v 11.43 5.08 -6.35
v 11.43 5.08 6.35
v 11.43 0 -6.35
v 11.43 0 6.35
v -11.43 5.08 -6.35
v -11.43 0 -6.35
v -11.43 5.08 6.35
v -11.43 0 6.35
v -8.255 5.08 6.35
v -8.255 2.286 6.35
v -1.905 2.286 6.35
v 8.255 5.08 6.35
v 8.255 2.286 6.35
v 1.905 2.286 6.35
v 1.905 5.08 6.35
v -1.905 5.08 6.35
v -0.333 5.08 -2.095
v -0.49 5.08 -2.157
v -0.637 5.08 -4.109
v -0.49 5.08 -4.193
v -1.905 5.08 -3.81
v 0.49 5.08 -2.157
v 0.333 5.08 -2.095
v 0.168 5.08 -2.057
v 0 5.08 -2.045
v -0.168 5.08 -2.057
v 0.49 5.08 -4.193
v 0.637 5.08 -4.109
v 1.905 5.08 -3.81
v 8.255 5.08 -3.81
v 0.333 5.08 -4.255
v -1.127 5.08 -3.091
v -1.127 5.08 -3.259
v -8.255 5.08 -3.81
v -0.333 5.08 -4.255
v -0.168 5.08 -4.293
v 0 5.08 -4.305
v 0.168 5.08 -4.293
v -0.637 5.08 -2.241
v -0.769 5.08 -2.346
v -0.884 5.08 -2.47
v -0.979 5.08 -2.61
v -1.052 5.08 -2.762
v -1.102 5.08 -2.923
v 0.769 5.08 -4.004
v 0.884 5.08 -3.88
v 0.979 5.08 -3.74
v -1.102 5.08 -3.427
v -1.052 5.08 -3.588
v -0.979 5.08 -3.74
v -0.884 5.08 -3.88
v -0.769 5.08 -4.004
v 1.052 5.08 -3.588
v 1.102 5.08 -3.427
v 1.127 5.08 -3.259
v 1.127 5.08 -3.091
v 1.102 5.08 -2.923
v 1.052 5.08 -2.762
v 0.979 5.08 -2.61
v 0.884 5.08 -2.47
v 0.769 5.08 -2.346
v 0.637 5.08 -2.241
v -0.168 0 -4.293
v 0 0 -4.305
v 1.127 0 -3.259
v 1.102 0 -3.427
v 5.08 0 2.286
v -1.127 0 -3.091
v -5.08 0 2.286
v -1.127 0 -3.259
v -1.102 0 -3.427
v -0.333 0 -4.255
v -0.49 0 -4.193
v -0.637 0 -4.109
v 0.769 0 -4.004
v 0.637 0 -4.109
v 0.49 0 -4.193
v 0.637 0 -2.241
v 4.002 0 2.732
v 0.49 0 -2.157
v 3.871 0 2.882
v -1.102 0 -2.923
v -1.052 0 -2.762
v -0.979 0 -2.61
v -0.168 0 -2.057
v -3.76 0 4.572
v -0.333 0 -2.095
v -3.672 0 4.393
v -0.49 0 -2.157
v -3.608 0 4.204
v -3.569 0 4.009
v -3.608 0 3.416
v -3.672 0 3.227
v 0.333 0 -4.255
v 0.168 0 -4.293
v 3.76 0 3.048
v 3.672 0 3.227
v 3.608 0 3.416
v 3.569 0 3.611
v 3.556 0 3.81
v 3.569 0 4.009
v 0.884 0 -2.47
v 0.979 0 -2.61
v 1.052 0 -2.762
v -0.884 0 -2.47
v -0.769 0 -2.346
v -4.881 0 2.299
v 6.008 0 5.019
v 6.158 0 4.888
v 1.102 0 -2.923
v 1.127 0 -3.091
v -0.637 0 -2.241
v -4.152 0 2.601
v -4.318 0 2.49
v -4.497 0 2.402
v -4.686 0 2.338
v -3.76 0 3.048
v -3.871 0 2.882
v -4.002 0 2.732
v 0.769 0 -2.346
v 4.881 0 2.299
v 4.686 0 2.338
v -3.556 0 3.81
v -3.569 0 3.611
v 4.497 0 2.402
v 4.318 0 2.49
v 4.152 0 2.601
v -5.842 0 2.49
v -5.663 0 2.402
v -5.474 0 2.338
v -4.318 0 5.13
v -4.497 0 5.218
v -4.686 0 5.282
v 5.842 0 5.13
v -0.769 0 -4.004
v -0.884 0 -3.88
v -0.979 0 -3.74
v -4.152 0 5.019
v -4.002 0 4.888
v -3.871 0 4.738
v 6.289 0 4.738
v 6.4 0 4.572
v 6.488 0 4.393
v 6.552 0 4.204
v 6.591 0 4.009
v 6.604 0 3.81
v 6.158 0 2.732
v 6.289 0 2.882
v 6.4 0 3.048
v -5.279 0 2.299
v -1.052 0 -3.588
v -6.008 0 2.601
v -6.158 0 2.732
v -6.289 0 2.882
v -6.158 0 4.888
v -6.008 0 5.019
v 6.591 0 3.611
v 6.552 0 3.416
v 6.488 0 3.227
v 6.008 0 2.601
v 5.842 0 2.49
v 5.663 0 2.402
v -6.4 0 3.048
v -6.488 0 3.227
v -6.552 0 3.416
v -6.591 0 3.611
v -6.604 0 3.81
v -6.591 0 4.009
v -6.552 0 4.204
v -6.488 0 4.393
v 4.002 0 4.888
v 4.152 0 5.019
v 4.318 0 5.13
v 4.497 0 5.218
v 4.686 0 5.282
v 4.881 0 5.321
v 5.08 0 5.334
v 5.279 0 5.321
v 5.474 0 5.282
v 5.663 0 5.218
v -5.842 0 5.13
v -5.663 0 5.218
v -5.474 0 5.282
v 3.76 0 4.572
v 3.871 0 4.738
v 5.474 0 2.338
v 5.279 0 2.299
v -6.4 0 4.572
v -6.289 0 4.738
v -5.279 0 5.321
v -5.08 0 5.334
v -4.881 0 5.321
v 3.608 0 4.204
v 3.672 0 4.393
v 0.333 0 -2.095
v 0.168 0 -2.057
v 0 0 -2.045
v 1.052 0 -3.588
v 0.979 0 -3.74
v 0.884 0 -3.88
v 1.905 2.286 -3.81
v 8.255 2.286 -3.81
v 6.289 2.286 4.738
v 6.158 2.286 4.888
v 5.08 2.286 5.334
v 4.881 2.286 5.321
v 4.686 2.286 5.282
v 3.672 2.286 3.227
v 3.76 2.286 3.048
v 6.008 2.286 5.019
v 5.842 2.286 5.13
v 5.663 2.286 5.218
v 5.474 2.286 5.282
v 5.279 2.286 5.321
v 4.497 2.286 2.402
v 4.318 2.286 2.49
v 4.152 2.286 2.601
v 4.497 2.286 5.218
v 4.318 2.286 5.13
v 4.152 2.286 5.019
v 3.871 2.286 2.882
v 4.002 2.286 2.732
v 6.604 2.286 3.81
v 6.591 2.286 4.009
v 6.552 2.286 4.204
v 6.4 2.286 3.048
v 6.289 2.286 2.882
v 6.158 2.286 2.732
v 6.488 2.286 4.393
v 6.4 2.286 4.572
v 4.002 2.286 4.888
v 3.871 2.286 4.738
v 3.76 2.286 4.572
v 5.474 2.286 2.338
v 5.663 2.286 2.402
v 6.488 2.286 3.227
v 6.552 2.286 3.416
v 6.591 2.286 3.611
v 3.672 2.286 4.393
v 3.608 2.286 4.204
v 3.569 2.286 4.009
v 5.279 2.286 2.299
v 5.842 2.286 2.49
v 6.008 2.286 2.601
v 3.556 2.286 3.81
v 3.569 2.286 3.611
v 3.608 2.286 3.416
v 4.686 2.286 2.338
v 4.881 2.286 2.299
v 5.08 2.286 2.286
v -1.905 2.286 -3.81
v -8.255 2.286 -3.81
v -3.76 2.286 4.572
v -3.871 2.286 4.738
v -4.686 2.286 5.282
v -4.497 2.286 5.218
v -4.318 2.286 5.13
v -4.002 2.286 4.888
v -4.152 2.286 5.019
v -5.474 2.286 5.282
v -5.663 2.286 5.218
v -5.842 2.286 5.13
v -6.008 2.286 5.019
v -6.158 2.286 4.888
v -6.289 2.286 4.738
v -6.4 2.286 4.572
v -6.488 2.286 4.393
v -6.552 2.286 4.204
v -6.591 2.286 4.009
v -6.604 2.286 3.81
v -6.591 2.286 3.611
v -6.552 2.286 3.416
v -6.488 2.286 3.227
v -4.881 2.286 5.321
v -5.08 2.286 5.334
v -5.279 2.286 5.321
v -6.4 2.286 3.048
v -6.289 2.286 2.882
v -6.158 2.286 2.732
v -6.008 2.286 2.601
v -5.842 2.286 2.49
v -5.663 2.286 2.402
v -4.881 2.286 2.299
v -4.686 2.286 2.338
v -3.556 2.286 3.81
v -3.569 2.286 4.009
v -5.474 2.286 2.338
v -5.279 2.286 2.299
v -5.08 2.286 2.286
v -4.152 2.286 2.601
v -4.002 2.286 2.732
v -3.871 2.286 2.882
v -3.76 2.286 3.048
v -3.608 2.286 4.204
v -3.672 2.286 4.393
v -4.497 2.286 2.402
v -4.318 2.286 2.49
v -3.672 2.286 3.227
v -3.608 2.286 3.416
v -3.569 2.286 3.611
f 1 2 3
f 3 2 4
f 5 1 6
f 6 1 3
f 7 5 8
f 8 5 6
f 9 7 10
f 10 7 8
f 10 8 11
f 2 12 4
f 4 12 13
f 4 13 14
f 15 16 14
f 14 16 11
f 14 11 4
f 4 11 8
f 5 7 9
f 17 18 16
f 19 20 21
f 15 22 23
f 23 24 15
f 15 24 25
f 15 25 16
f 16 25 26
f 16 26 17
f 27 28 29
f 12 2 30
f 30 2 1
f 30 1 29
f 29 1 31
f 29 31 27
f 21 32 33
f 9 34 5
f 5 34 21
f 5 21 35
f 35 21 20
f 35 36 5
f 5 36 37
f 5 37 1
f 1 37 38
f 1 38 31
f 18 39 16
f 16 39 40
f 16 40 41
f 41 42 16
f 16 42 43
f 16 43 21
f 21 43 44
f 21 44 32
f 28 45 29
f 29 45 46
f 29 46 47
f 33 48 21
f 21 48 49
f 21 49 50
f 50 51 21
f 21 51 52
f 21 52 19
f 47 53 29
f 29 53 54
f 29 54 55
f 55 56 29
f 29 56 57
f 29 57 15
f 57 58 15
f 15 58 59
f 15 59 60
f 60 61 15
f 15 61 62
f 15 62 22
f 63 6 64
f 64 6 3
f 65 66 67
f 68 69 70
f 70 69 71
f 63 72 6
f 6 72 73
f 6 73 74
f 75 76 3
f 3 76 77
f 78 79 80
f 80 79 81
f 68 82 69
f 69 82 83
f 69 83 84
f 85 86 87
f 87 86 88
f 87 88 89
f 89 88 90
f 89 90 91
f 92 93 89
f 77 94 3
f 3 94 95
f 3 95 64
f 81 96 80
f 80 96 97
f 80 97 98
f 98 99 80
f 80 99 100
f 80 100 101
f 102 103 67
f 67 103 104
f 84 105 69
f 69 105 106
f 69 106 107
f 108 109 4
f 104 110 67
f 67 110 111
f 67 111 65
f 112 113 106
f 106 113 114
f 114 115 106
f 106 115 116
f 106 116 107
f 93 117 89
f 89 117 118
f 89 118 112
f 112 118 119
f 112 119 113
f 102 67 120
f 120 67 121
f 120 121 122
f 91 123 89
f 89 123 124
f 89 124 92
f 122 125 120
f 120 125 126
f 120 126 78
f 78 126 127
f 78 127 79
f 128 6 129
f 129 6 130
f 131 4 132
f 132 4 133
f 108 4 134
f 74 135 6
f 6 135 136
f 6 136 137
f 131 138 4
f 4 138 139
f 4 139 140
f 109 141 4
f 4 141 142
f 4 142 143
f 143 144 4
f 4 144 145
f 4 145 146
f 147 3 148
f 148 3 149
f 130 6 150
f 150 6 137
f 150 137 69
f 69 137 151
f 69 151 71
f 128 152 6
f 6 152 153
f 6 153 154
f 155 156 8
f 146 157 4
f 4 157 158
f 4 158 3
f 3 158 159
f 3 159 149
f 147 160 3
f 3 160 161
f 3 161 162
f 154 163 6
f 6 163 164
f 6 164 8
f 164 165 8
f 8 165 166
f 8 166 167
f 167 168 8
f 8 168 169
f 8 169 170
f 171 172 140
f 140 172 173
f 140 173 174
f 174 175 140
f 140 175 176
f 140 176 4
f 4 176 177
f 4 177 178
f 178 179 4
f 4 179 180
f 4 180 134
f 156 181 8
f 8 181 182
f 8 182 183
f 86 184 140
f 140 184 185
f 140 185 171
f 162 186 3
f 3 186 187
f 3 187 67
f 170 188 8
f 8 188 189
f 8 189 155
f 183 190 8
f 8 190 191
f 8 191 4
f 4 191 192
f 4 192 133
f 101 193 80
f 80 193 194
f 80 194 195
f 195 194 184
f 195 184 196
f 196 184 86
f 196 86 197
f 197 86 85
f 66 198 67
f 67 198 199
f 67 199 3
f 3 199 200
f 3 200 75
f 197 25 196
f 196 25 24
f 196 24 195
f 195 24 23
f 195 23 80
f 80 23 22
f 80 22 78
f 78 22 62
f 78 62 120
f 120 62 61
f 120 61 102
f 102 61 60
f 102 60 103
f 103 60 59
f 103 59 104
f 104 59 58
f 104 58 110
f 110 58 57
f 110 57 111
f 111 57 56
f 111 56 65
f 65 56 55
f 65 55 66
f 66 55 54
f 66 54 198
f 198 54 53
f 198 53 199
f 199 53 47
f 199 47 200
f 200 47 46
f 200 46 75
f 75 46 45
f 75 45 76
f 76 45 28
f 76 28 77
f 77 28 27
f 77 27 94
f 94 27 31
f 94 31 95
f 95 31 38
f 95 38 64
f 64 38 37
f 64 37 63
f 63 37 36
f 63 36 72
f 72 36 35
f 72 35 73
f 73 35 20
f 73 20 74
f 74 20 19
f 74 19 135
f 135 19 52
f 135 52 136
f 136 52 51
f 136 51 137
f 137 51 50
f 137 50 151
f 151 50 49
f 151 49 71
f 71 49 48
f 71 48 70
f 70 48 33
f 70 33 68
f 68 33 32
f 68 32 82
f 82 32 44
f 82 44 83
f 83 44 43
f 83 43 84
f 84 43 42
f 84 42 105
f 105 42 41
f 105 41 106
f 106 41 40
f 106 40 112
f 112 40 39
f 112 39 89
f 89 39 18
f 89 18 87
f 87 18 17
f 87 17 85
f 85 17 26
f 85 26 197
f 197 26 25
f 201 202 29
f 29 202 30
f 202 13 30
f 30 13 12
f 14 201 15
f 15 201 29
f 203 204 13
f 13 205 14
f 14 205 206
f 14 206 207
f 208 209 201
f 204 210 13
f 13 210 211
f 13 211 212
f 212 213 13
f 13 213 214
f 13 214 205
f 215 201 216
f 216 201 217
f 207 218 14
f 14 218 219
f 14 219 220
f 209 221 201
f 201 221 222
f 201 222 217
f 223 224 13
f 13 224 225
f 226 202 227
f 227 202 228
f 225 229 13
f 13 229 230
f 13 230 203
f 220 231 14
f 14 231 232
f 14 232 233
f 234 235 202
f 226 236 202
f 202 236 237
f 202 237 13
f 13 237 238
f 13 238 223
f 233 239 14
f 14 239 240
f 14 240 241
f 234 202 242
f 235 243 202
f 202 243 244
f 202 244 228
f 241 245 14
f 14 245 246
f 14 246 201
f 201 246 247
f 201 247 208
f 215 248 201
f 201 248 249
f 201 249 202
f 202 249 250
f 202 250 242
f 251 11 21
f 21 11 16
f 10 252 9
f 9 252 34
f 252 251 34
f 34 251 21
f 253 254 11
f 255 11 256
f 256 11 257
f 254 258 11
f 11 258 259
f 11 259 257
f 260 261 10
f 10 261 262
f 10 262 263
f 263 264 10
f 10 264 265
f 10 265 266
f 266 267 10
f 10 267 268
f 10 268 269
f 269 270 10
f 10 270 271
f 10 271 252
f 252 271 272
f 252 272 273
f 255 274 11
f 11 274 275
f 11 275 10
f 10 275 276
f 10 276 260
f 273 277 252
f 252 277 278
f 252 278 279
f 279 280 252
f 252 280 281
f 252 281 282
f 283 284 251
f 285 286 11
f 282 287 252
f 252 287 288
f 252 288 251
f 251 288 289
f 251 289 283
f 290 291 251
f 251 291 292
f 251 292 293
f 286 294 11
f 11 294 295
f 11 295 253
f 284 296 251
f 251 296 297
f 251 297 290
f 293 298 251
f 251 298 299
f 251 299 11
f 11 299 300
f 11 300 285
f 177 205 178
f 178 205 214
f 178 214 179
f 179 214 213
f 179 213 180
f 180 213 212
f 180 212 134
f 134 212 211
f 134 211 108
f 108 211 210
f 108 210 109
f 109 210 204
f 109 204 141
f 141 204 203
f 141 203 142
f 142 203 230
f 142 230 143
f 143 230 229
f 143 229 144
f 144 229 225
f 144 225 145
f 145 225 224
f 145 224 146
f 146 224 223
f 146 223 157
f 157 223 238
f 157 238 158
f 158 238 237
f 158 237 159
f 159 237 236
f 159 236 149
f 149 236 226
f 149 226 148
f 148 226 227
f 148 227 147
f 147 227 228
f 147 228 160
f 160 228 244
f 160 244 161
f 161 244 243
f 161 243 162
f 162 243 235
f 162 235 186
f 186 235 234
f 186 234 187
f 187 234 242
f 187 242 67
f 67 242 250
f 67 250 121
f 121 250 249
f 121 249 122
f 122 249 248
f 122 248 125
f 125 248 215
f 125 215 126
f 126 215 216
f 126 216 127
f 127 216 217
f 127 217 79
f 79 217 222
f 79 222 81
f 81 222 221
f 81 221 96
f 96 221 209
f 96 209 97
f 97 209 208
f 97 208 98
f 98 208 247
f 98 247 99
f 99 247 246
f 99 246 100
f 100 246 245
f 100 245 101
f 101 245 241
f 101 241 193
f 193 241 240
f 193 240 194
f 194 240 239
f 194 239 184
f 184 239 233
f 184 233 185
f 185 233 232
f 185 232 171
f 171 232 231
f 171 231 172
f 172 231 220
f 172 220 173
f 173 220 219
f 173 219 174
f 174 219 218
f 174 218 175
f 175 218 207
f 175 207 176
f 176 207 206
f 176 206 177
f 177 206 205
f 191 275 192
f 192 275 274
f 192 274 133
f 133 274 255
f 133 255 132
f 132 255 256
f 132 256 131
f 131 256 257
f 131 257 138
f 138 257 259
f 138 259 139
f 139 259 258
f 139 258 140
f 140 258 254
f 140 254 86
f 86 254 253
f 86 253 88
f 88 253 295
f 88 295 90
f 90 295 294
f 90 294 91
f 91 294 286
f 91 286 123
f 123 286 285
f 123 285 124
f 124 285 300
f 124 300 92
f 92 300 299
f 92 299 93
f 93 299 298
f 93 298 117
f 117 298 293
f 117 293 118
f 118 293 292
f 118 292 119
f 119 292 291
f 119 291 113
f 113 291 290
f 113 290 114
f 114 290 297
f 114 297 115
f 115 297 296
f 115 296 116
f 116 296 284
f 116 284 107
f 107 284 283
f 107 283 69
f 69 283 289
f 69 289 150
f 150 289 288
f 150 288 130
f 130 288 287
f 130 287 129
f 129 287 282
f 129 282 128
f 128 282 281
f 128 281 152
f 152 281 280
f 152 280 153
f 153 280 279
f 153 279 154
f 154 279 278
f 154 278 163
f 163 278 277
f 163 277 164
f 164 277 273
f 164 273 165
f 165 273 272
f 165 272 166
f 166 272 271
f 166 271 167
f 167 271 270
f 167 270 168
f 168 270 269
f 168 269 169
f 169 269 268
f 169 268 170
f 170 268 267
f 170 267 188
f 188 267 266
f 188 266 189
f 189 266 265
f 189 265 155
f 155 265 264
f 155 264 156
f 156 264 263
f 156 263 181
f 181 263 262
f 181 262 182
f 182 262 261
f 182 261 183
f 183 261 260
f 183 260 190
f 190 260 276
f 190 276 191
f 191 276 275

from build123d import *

# Parameters (mm, degrees)
SKETCH1_W                      = 22.86
SKETCH1_H                      = 12.7
BOSS_EXTRUDE1_DEPTH            = 5.08
F_4_40_TAPPED_HOLE1_D          = 2.2606
F_4_40_TAPPED_HOLE1_DEPTH      = 7.5946
F_4_40_TAPPED_HOLE1_TIP        = 0.679152758
SKETCH5_W                      = 6.35
SKETCH5_H                      = 10.16
CUT_EXTRUDE1_DEPTH             = 2.794
F_31_0_12_DIAMETER_HOLE1_D     = 3.048
F_31_0_12_DIAMETER_HOLE1_DEPTH = 7.5946
F_31_0_12_DIAMETER_HOLE1_TIP   = 0.915711583


with BuildPart() as part:
    # Sketch1 → Boss-Extrude1 (new body)
    with BuildSketch(Plane(origin=(0, 0, 0), x_dir=(1, 0, 0), z_dir=(0, 1, 0))):
        Rectangle(SKETCH1_W, SKETCH1_H)
    extrude(amount=BOSS_EXTRUDE1_DEPTH)

    # #4-40 Tapped Hole1
    with Locations(Plane(origin=(0, 5.08, 0), x_dir=(1, 0, 0), z_dir=(0, 1, 0))):
        with Locations((0, 3.175)):
            Hole(F_4_40_TAPPED_HOLE1_D / 2, depth=F_4_40_TAPPED_HOLE1_DEPTH)
            with Locations((0, 0, -(F_4_40_TAPPED_HOLE1_DEPTH + F_4_40_TAPPED_HOLE1_TIP / 2))):  # 118° drill point
                Cone(0, F_4_40_TAPPED_HOLE1_D / 2, F_4_40_TAPPED_HOLE1_TIP, mode=Mode.SUBTRACT)

    # Sketch5 → Cut-Extrude1 (cut)
    with BuildSketch(Plane(origin=(0, 5.08, 0), x_dir=(1, 0, 0), z_dir=(0, 1, 0))):
        with Locations((-5.08, -1.27)):
            Rectangle(SKETCH5_W, SKETCH5_H)
        with Locations((5.08, -1.27)):
            Rectangle(SKETCH5_W, SKETCH5_H)
    extrude(amount=-CUT_EXTRUDE1_DEPTH, mode=Mode.SUBTRACT)

    # #31 (0.12) Diameter Hole1
    with Locations(Plane(origin=(0, 2.286, 0), x_dir=(1, 0, 0), z_dir=(0, 1, 0))):
        with Locations((-5.08, -3.81), (5.08, -3.81)):
            Hole(F_31_0_12_DIAMETER_HOLE1_D / 2, depth=F_31_0_12_DIAMETER_HOLE1_DEPTH)
            with Locations((0, 0, -(F_31_0_12_DIAMETER_HOLE1_DEPTH + F_31_0_12_DIAMETER_HOLE1_TIP / 2))):  # 118° drill point
                Cone(0, F_31_0_12_DIAMETER_HOLE1_D / 2, F_31_0_12_DIAMETER_HOLE1_TIP, mode=Mode.SUBTRACT)


solid = part.part
